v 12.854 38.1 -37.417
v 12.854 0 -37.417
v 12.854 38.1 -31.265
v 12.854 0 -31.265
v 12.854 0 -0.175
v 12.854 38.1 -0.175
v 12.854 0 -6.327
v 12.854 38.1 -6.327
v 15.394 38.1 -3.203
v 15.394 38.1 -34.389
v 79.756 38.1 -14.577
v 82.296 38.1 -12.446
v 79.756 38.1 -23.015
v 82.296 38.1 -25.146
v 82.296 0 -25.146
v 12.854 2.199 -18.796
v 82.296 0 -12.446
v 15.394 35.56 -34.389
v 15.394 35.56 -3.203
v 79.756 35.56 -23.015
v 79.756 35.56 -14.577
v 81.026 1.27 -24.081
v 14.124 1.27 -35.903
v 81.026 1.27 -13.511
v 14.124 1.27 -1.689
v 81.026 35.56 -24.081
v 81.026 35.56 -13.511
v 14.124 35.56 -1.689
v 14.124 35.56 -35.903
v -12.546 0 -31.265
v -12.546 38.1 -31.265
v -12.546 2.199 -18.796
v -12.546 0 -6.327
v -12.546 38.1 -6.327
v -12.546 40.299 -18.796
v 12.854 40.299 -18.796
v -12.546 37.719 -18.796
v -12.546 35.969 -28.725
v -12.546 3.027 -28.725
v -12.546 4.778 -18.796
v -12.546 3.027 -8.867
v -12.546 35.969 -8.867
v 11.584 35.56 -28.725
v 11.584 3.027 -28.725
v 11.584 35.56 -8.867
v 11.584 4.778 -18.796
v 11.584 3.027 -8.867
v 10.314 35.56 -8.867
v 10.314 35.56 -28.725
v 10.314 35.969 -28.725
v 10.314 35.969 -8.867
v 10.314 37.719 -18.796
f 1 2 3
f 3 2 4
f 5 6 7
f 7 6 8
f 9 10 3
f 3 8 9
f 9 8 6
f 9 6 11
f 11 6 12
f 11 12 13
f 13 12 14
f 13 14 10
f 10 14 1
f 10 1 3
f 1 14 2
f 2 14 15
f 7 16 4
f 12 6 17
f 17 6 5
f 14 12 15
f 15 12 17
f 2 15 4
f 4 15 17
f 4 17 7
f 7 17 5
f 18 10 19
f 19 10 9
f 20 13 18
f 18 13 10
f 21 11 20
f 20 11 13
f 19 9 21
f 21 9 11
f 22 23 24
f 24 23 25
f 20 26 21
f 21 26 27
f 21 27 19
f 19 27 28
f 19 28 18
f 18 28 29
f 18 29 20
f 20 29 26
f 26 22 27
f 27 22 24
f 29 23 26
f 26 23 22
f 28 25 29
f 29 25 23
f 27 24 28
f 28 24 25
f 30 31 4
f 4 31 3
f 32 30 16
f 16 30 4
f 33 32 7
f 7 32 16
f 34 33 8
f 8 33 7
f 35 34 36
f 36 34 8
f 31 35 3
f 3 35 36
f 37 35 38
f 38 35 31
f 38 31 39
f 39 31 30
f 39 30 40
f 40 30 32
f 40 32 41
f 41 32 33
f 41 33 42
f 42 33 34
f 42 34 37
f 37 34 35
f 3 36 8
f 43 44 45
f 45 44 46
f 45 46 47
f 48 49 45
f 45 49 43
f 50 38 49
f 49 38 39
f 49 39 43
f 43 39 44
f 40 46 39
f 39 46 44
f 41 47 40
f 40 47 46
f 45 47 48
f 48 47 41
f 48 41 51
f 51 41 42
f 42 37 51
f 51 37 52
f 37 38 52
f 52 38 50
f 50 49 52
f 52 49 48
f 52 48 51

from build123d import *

# Parameters (mm, degrees)
BOSS_EXTRUDE1_DEPTH = 38.1
CUT_EXTRUDE1_DEPTH  = 2.54
CUT_EXTRUDE2_DEPTH  = 34.29
BOSS_EXTRUDE2_DEPTH = 25.4
SHELL1_START        = -12.546191045
SHELL1_DEPTH        = 24.13
SHELL1_2_DEPTH      = 22.86


# Read off the part's stored shape, not the designer's step: Shell1
with BuildPart() as part:
    # Sketch1 → Boss-Extrude1 (new body)
    with BuildSketch(Plane(origin=(0, 0, 0), x_dir=(1, 0, 0), z_dir=(0, 1, 0))):
        Polygon((12.853808955, 0.174987325), (12.853808955, 37.417012675), (82.296, 25.146), (82.296, 12.446), align=None)
    extrude(amount=BOSS_EXTRUDE1_DEPTH)

    # Sketch3 → Cut-Extrude1 (cut)
    with BuildSketch(Plane(origin=(0, 35.56, 0), x_dir=(1, 0, 0), z_dir=(0, 1, 0))):
        Polygon((79.756, 14.576512841), (79.756, 23.015487159), (15.393808955, 34.388821586), (15.393808955, 3.203178414), align=None)
    extrude(amount=CUT_EXTRUDE1_DEPTH, mode=Mode.SUBTRACT)

    # Sketch6 → Cut-Extrude2 (cut)
    with BuildSketch(Plane(origin=(0, 35.56, 0), x_dir=(1, 0, 0), z_dir=(0, 1, 0))):
        Polygon((81.026, 13.511256421), (81.026, 24.080743579), (14.123808955, 35.90291713), (14.123808955, 1.68908287), align=None)
    extrude(amount=-CUT_EXTRUDE2_DEPTH, mode=Mode.SUBTRACT)

    # Sketch8 → Boss-Extrude2 (add)
    with BuildSketch(Plane.ZY.offset(-12.853808955)):
        Polygon((-31.26502256, 38.1), (-31.26502256, 0), (-18.796, 2.1986251), (-6.32697744, 0), (-6.32697744, 38.1), (-18.796, 40.2986251), align=None)
    extrude(amount=BOSS_EXTRUDE2_DEPTH)

    # Shell1 outline → Shell1 (cut)
    with BuildSketch(Plane.YZ.offset(SHELL1_START)):
        Polygon((35.56, -28.72502256), (35.56, -8.86697744), (3.027054125, -8.86697744), (4.777808695, -18.796), (3.027054125, -28.72502256), align=None)
    extrude(amount=SHELL1_DEPTH, mode=Mode.SUBTRACT)

    # Shell1 2 outline → Shell1 2 (cut)
    with BuildSketch(Plane.YZ.offset(SHELL1_START)):
        Polygon((35.968686937, -8.86697744), (35.56, -8.86697744), (35.56, -28.72502256), (35.968686937, -28.72502256), (37.719441506, -18.796), align=None)
    extrude(amount=SHELL1_2_DEPTH, mode=Mode.SUBTRACT)


solid = part.part
